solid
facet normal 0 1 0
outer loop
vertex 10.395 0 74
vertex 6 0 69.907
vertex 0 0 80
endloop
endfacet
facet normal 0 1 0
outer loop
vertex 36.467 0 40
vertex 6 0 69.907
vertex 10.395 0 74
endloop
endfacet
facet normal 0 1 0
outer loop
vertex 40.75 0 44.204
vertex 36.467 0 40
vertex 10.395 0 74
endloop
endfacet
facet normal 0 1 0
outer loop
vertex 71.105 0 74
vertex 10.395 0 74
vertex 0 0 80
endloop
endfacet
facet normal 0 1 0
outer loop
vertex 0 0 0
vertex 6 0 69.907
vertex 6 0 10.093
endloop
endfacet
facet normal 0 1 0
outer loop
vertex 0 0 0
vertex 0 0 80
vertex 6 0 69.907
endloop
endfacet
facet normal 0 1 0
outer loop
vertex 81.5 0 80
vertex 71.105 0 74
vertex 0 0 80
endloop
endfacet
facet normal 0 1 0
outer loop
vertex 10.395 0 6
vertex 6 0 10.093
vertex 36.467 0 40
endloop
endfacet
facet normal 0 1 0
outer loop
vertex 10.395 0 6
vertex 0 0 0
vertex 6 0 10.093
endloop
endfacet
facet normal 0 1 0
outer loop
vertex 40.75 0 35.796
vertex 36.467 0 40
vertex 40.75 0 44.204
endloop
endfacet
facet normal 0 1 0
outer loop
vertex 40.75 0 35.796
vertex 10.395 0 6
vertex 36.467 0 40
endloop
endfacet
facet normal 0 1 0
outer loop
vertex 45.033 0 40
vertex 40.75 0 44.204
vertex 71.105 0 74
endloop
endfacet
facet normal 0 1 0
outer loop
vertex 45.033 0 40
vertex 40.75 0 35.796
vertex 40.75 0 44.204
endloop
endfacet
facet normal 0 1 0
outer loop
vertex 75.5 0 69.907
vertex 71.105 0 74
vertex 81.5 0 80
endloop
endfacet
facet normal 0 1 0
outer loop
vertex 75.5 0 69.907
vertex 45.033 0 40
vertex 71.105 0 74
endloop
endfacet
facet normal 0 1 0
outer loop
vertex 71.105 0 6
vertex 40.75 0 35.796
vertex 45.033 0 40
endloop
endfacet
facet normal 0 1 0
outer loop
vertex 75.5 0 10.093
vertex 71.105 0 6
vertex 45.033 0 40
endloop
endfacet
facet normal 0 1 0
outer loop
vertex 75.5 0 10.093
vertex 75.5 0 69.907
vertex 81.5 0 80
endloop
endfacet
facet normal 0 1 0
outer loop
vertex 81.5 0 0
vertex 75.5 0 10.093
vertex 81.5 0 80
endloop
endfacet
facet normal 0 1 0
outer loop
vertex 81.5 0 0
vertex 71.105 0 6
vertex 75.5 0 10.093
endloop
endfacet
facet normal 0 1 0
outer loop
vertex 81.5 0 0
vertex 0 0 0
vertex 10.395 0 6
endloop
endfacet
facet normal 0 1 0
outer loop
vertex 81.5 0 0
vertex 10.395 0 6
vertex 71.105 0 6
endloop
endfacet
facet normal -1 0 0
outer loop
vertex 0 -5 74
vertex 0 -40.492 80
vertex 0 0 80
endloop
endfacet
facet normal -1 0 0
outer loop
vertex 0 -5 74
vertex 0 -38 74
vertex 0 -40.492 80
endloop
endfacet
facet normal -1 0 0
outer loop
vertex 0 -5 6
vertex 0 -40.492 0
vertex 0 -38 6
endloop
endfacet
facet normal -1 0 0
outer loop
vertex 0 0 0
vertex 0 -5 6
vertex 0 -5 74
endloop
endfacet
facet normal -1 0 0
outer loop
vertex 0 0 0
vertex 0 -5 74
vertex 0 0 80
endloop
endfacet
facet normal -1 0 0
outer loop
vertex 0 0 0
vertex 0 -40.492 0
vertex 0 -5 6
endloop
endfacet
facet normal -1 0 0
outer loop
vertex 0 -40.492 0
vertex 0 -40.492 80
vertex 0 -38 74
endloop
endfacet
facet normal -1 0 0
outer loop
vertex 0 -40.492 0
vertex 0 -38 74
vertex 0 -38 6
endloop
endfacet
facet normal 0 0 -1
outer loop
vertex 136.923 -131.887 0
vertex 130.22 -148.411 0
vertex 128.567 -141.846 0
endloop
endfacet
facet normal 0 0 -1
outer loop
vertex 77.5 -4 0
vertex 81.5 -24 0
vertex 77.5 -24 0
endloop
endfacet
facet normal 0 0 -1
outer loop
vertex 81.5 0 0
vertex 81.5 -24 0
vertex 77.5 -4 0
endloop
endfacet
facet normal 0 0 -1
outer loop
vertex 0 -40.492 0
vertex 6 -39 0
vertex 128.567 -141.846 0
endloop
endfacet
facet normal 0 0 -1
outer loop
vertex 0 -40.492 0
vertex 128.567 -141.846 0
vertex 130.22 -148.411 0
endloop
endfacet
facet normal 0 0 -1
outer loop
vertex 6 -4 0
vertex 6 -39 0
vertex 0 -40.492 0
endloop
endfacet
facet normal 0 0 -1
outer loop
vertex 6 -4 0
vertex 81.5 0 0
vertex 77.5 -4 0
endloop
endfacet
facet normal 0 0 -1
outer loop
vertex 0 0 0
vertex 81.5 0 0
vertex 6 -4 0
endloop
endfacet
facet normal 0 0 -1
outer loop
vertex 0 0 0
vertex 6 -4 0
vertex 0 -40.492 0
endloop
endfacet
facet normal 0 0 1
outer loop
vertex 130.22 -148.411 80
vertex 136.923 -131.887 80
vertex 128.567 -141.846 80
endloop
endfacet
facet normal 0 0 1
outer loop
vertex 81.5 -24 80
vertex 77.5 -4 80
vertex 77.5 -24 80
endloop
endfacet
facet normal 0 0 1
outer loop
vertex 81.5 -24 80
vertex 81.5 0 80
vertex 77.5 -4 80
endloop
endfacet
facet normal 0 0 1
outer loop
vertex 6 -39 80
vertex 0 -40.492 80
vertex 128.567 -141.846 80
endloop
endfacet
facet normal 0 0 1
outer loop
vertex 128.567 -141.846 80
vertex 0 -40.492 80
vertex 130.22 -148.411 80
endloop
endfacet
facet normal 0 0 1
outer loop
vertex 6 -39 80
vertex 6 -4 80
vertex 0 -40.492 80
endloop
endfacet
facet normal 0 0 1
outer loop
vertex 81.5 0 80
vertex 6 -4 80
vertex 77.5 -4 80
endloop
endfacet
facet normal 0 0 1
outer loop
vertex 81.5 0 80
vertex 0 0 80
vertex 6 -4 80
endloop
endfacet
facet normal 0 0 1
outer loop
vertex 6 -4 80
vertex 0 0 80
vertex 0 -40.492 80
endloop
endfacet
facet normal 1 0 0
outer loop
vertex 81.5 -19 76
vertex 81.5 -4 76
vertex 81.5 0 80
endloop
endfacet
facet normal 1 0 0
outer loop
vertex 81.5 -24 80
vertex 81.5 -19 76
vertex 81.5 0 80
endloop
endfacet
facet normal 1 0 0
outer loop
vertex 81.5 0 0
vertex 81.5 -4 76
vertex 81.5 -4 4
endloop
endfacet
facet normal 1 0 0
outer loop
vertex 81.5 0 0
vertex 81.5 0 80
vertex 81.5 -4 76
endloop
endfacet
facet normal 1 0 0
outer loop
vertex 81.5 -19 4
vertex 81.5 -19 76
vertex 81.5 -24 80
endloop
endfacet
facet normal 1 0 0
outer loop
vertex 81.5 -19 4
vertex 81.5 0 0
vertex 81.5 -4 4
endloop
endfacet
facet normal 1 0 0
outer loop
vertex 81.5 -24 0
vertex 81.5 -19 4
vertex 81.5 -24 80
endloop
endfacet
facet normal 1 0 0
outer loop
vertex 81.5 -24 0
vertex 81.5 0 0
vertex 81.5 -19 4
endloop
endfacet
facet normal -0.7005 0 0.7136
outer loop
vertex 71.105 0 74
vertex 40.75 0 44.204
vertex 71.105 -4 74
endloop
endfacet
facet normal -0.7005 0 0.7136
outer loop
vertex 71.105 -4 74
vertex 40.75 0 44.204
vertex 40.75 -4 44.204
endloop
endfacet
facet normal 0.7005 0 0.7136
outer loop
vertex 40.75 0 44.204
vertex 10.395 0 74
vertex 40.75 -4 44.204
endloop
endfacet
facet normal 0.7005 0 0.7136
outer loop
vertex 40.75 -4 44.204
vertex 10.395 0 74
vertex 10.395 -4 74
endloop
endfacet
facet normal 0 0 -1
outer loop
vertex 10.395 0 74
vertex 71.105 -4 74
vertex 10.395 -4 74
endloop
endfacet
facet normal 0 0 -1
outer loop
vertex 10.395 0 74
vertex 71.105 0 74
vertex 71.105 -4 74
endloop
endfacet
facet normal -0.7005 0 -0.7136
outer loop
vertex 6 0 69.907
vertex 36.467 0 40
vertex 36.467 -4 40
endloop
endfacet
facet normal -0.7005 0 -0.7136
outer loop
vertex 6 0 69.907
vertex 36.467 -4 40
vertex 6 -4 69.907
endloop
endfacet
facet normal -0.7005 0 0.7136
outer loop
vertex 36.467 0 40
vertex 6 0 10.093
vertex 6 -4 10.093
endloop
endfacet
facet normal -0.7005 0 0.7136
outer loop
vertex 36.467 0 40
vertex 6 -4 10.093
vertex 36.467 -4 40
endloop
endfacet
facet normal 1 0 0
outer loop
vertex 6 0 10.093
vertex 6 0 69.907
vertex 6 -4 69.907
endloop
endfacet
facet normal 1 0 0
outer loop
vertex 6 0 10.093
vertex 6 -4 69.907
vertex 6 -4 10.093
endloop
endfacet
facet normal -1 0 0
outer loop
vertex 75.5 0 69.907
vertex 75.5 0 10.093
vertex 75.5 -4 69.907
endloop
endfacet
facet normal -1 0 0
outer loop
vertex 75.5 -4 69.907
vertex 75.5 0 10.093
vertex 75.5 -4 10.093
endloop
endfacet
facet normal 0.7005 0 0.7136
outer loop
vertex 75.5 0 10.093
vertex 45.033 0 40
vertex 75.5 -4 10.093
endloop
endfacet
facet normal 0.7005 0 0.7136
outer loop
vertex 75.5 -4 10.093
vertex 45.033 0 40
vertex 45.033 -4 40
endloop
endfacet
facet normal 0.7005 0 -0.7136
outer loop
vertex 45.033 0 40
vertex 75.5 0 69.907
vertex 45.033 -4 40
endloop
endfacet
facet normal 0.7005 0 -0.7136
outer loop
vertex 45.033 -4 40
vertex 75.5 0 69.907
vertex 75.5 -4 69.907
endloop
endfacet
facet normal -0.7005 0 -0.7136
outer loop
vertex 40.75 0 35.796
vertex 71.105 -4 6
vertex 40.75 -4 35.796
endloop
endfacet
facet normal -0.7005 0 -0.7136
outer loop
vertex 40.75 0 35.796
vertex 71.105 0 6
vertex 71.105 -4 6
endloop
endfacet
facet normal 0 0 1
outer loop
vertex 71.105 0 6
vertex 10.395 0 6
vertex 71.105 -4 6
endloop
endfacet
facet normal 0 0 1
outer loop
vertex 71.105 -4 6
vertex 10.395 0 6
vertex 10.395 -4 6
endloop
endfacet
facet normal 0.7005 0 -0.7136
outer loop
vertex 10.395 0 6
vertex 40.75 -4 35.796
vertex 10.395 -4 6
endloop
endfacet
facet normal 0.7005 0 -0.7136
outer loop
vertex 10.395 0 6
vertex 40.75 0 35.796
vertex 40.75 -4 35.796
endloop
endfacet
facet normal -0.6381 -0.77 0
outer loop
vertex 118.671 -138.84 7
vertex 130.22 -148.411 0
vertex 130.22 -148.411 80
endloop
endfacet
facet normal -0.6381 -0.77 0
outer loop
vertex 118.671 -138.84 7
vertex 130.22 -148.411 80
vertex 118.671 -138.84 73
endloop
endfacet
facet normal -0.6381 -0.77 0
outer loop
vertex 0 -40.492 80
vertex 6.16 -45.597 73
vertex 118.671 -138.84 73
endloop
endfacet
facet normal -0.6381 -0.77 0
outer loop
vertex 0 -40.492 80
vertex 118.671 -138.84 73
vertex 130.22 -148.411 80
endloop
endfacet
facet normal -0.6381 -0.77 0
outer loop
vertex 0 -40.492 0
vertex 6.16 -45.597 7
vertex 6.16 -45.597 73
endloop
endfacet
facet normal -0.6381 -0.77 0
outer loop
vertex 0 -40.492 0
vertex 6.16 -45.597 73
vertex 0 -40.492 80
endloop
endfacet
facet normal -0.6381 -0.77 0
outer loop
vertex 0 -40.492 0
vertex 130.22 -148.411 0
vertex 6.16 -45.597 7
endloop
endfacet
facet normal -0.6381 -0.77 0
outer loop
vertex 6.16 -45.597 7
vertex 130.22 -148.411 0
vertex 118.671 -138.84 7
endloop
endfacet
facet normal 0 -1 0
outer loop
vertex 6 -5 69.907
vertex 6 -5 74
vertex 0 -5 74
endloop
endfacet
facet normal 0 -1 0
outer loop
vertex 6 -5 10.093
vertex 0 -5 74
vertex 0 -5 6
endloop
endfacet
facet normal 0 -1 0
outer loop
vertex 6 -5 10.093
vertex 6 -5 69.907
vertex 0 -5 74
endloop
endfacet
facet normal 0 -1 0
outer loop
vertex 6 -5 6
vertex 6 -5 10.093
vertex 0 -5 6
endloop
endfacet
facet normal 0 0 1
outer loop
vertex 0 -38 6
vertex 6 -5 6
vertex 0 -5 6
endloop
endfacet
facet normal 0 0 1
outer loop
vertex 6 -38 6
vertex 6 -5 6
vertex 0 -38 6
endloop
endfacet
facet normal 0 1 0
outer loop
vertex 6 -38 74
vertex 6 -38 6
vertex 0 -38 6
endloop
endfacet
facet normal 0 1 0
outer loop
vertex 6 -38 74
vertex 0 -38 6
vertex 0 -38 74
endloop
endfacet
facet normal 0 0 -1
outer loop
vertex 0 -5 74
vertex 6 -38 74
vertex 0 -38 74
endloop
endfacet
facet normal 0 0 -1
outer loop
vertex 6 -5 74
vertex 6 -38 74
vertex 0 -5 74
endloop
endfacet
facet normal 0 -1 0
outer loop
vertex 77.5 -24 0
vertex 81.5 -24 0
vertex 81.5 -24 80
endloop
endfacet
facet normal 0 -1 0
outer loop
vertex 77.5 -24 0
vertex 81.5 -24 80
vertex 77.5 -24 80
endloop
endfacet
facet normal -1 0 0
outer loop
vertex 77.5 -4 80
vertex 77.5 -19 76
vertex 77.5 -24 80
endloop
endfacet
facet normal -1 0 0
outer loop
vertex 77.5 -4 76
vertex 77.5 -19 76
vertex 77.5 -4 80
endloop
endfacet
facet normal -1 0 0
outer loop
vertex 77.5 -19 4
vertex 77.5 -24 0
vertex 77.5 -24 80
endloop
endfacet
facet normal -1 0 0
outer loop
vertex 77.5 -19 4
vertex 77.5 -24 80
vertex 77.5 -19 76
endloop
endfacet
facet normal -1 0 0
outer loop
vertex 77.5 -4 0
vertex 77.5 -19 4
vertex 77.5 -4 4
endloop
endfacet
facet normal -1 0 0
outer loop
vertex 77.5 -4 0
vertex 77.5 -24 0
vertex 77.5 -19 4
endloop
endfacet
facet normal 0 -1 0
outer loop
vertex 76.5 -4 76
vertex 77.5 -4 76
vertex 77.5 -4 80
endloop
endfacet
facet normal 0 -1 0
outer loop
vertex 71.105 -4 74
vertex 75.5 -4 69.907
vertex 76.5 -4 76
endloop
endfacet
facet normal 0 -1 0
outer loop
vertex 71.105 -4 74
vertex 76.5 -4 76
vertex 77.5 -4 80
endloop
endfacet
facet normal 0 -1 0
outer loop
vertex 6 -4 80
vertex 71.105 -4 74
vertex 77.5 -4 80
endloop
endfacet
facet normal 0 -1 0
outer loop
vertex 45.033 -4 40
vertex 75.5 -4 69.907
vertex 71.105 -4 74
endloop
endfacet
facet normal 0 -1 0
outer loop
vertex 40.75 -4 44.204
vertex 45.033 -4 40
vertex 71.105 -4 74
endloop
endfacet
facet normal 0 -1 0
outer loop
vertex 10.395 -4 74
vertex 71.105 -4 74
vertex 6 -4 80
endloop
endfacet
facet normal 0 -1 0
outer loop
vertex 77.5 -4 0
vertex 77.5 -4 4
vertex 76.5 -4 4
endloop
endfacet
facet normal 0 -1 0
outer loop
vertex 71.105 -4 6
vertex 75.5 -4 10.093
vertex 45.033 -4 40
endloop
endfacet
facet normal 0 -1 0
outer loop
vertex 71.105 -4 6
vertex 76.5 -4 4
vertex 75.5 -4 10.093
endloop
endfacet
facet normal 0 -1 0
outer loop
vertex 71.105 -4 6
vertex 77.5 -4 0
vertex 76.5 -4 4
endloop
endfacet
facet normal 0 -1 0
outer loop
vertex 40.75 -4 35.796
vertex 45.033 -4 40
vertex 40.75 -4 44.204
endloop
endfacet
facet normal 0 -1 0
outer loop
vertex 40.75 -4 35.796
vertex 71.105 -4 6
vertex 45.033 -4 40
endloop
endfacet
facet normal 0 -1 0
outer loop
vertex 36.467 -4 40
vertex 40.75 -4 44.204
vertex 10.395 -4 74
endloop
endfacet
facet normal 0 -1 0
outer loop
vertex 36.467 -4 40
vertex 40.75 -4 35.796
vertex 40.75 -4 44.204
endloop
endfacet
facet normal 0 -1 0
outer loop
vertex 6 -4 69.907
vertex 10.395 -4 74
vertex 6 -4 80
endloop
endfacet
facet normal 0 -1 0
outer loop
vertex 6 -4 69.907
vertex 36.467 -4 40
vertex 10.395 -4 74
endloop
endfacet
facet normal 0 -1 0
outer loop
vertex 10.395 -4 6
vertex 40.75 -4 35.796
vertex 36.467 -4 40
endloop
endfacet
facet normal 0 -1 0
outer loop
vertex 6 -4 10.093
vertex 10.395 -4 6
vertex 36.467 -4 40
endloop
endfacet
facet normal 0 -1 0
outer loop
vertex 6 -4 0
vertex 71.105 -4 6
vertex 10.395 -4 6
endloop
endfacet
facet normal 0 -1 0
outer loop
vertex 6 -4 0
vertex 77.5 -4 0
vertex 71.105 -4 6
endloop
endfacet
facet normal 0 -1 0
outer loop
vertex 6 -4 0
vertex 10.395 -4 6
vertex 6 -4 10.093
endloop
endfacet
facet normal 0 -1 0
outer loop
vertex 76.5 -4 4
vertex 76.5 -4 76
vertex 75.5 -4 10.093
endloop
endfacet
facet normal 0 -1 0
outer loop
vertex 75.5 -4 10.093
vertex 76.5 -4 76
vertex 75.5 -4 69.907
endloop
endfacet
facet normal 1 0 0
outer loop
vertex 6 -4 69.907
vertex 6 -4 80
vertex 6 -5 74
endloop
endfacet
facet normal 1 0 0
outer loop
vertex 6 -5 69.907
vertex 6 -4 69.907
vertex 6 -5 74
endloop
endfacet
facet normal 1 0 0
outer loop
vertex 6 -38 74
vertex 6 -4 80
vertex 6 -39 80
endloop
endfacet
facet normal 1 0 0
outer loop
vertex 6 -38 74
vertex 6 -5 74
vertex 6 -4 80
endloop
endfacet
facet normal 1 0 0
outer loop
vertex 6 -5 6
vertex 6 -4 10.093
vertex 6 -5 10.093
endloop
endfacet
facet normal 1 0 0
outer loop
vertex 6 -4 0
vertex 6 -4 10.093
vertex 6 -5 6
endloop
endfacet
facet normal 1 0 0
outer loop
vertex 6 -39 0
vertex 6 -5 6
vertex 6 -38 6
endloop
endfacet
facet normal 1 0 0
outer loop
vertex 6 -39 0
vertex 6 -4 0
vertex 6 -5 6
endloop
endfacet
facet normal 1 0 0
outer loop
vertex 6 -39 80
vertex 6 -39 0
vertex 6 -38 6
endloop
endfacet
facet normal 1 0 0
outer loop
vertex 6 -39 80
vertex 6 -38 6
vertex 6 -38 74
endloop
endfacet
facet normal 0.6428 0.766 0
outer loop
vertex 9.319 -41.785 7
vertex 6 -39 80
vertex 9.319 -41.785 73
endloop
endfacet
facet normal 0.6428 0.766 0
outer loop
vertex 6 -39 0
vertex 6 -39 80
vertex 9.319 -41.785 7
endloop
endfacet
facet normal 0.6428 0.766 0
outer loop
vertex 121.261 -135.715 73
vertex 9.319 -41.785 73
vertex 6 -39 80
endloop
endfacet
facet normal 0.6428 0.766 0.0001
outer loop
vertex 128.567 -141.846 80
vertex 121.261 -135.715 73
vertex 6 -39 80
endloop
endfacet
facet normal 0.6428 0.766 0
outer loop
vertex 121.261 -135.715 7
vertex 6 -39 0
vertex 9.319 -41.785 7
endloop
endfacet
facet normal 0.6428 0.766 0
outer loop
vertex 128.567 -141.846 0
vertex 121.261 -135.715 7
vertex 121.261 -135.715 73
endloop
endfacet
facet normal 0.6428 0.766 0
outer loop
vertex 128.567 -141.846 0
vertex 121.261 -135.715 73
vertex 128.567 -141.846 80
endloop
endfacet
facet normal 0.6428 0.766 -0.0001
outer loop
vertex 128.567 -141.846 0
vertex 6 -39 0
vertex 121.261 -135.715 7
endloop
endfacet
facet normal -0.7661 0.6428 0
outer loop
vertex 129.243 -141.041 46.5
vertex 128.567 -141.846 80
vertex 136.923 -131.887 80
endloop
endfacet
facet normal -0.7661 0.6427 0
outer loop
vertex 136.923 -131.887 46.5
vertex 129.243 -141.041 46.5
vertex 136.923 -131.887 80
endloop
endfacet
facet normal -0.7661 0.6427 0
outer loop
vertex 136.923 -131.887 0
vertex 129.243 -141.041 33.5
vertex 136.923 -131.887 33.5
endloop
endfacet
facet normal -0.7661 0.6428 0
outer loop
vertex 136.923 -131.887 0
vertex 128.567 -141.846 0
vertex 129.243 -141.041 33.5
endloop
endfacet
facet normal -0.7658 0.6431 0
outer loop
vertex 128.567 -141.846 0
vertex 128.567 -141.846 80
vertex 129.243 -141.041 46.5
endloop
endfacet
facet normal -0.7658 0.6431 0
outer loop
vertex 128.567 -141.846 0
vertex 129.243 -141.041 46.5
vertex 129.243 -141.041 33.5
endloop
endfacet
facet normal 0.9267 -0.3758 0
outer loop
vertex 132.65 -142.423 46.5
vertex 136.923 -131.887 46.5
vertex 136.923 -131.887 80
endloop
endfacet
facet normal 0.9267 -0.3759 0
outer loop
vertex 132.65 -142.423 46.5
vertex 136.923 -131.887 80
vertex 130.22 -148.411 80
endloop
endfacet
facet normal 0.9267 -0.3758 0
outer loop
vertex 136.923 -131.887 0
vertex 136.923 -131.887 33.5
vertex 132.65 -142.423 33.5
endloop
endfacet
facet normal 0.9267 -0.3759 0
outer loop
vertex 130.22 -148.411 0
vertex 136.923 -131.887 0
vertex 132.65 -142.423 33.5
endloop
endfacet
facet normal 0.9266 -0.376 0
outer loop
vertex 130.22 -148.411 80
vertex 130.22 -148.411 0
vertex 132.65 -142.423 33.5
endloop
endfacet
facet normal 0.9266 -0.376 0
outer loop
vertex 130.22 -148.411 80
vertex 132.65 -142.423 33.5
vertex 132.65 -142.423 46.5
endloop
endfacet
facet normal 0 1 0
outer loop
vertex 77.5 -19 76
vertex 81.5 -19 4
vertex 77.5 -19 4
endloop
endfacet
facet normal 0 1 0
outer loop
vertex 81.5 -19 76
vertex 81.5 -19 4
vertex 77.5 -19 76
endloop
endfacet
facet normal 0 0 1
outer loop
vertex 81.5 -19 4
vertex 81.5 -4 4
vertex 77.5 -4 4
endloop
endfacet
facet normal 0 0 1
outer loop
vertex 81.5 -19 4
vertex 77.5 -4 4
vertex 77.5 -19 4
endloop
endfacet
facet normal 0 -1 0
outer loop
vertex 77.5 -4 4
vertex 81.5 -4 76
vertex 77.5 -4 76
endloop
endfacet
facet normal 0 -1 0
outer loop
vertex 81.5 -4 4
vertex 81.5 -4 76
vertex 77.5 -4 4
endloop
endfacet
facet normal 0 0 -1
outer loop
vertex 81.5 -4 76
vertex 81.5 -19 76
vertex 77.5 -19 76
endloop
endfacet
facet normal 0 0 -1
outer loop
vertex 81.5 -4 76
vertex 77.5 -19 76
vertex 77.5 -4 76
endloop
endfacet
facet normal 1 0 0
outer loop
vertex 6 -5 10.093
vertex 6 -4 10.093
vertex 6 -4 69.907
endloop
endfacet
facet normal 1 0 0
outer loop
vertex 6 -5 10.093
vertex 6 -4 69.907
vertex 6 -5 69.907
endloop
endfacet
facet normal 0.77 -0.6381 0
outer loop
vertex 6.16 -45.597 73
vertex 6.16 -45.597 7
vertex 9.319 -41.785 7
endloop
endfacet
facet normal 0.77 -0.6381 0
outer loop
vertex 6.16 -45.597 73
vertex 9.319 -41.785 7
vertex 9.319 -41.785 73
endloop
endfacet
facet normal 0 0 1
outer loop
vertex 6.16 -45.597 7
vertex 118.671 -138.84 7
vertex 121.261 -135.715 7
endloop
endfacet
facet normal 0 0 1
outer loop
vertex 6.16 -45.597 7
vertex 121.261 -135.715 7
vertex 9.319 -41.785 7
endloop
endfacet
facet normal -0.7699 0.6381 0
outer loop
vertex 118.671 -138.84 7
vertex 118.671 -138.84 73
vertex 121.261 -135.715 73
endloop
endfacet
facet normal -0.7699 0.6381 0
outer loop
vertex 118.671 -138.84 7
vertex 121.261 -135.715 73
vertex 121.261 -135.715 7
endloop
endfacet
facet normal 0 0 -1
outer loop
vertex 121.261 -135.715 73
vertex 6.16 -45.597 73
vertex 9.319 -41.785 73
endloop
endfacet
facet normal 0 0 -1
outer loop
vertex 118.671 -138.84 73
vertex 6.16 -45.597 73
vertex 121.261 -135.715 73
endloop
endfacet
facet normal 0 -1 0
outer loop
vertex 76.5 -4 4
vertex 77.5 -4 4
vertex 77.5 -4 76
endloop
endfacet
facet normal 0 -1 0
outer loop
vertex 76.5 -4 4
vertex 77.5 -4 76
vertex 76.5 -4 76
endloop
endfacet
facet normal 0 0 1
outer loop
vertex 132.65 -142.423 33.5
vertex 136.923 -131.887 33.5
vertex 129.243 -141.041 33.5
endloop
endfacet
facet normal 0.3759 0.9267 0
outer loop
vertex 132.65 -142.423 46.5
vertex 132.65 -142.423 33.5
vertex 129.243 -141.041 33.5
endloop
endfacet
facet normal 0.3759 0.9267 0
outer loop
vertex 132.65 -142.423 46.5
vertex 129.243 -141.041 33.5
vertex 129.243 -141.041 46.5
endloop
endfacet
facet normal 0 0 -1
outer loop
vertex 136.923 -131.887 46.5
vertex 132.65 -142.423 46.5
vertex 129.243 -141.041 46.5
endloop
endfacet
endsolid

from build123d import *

# Parameters (mm, degrees)
PAD_DEPTH       = 80
POCKET_DEPTH    = 5
SKETCH002_W     = 33
SKETCH002_H     = 68
POCKET001_DEPTH = 9
SKETCH003_W     = 146.126759
SKETCH003_H     = 66
POCKET002_DEPTH = 5
SKETCH004_W     = 15
SKETCH004_H     = 72
POCKET003_DEPTH = 5
SKETCH005_W     = 20
SKETCH005_H     = 13
POCKET004_DEPTH = 5


with BuildPart() as part:
    # Sketch → Pad (new body)
    with BuildSketch(Plane.XY):
        Polygon((0, 0), (81.5, 0), (81.5, -24), (77.5, -24), (77.5, -4), (6, -4), (6, -39), (128.567111, -141.846018), (136.92335, -131.88744), (130.220486, -148.411324), (0, -40.492439), align=None)
    extrude(amount=PAD_DEPTH)

    # Sketch001 (on Face1 of Pad) → Pocket (cut)
    with BuildSketch(Plane(origin=(0, 0, 0), x_dir=(-1, 0, 0), z_dir=(0, 1, 0))):
        Polygon((-40.75, 35.796221), (-71.1049, 6), (-10.3951, 6), align=None)
        Polygon((-75.5, 69.90665), (-75.5, 10.09335), (-45.0326, 40), align=None)
        Polygon((-71.1049, 74), (-40.75, 44.203779), (-10.3951, 74), align=None)
        Polygon((-6, 69.90665), (-6, 10.09335), (-36.4674, 40), align=None)
    extrude(amount=-POCKET_DEPTH, mode=Mode.SUBTRACT)

    # Sketch002 (on Face22 of Pocket) → Pocket001 (cut)
    with BuildSketch(Plane.YZ.offset(6)):
        with Locations((-21.5, 40)):
            Rectangle(SKETCH002_W, SKETCH002_H)
    extrude(amount=-POCKET001_DEPTH, mode=Mode.SUBTRACT)

    # Sketch003 (on Face18 of Pocket001) → Pocket002 (cut)
    with BuildSketch(Plane(origin=(-19.89418, -24.005342, 0), x_dir=(0.769958, -0.638095, 0), z_dir=(-0.638095, -0.769958, 0))):
        with Locations((106.901389, 40)):
            Rectangle(SKETCH003_W, SKETCH003_H)
    extrude(amount=-POCKET002_DEPTH, mode=Mode.SUBTRACT)

    # Sketch004 (on Face5 of Pocket002) → Pocket003 (cut)
    with BuildSketch(Plane.YZ.offset(81.5)):
        with Locations((-11.5, 40)):
            Rectangle(SKETCH004_W, SKETCH004_H)
    extrude(amount=-POCKET003_DEPTH, mode=Mode.SUBTRACT)

    # Sketch005 (on Face29 of Pocket003) → Pocket004 (cut)
    with BuildSketch(Plane(origin=(163.516532, -66.32999, 0), x_dir=(0.375897, 0.926661, 0), z_dir=(0.926661, -0.375897, 0))):
        with Locations((-72.115176, 40)):
            Rectangle(SKETCH005_W, SKETCH005_H)
    extrude(amount=-POCKET004_DEPTH, mode=Mode.SUBTRACT)


solid = part.part
